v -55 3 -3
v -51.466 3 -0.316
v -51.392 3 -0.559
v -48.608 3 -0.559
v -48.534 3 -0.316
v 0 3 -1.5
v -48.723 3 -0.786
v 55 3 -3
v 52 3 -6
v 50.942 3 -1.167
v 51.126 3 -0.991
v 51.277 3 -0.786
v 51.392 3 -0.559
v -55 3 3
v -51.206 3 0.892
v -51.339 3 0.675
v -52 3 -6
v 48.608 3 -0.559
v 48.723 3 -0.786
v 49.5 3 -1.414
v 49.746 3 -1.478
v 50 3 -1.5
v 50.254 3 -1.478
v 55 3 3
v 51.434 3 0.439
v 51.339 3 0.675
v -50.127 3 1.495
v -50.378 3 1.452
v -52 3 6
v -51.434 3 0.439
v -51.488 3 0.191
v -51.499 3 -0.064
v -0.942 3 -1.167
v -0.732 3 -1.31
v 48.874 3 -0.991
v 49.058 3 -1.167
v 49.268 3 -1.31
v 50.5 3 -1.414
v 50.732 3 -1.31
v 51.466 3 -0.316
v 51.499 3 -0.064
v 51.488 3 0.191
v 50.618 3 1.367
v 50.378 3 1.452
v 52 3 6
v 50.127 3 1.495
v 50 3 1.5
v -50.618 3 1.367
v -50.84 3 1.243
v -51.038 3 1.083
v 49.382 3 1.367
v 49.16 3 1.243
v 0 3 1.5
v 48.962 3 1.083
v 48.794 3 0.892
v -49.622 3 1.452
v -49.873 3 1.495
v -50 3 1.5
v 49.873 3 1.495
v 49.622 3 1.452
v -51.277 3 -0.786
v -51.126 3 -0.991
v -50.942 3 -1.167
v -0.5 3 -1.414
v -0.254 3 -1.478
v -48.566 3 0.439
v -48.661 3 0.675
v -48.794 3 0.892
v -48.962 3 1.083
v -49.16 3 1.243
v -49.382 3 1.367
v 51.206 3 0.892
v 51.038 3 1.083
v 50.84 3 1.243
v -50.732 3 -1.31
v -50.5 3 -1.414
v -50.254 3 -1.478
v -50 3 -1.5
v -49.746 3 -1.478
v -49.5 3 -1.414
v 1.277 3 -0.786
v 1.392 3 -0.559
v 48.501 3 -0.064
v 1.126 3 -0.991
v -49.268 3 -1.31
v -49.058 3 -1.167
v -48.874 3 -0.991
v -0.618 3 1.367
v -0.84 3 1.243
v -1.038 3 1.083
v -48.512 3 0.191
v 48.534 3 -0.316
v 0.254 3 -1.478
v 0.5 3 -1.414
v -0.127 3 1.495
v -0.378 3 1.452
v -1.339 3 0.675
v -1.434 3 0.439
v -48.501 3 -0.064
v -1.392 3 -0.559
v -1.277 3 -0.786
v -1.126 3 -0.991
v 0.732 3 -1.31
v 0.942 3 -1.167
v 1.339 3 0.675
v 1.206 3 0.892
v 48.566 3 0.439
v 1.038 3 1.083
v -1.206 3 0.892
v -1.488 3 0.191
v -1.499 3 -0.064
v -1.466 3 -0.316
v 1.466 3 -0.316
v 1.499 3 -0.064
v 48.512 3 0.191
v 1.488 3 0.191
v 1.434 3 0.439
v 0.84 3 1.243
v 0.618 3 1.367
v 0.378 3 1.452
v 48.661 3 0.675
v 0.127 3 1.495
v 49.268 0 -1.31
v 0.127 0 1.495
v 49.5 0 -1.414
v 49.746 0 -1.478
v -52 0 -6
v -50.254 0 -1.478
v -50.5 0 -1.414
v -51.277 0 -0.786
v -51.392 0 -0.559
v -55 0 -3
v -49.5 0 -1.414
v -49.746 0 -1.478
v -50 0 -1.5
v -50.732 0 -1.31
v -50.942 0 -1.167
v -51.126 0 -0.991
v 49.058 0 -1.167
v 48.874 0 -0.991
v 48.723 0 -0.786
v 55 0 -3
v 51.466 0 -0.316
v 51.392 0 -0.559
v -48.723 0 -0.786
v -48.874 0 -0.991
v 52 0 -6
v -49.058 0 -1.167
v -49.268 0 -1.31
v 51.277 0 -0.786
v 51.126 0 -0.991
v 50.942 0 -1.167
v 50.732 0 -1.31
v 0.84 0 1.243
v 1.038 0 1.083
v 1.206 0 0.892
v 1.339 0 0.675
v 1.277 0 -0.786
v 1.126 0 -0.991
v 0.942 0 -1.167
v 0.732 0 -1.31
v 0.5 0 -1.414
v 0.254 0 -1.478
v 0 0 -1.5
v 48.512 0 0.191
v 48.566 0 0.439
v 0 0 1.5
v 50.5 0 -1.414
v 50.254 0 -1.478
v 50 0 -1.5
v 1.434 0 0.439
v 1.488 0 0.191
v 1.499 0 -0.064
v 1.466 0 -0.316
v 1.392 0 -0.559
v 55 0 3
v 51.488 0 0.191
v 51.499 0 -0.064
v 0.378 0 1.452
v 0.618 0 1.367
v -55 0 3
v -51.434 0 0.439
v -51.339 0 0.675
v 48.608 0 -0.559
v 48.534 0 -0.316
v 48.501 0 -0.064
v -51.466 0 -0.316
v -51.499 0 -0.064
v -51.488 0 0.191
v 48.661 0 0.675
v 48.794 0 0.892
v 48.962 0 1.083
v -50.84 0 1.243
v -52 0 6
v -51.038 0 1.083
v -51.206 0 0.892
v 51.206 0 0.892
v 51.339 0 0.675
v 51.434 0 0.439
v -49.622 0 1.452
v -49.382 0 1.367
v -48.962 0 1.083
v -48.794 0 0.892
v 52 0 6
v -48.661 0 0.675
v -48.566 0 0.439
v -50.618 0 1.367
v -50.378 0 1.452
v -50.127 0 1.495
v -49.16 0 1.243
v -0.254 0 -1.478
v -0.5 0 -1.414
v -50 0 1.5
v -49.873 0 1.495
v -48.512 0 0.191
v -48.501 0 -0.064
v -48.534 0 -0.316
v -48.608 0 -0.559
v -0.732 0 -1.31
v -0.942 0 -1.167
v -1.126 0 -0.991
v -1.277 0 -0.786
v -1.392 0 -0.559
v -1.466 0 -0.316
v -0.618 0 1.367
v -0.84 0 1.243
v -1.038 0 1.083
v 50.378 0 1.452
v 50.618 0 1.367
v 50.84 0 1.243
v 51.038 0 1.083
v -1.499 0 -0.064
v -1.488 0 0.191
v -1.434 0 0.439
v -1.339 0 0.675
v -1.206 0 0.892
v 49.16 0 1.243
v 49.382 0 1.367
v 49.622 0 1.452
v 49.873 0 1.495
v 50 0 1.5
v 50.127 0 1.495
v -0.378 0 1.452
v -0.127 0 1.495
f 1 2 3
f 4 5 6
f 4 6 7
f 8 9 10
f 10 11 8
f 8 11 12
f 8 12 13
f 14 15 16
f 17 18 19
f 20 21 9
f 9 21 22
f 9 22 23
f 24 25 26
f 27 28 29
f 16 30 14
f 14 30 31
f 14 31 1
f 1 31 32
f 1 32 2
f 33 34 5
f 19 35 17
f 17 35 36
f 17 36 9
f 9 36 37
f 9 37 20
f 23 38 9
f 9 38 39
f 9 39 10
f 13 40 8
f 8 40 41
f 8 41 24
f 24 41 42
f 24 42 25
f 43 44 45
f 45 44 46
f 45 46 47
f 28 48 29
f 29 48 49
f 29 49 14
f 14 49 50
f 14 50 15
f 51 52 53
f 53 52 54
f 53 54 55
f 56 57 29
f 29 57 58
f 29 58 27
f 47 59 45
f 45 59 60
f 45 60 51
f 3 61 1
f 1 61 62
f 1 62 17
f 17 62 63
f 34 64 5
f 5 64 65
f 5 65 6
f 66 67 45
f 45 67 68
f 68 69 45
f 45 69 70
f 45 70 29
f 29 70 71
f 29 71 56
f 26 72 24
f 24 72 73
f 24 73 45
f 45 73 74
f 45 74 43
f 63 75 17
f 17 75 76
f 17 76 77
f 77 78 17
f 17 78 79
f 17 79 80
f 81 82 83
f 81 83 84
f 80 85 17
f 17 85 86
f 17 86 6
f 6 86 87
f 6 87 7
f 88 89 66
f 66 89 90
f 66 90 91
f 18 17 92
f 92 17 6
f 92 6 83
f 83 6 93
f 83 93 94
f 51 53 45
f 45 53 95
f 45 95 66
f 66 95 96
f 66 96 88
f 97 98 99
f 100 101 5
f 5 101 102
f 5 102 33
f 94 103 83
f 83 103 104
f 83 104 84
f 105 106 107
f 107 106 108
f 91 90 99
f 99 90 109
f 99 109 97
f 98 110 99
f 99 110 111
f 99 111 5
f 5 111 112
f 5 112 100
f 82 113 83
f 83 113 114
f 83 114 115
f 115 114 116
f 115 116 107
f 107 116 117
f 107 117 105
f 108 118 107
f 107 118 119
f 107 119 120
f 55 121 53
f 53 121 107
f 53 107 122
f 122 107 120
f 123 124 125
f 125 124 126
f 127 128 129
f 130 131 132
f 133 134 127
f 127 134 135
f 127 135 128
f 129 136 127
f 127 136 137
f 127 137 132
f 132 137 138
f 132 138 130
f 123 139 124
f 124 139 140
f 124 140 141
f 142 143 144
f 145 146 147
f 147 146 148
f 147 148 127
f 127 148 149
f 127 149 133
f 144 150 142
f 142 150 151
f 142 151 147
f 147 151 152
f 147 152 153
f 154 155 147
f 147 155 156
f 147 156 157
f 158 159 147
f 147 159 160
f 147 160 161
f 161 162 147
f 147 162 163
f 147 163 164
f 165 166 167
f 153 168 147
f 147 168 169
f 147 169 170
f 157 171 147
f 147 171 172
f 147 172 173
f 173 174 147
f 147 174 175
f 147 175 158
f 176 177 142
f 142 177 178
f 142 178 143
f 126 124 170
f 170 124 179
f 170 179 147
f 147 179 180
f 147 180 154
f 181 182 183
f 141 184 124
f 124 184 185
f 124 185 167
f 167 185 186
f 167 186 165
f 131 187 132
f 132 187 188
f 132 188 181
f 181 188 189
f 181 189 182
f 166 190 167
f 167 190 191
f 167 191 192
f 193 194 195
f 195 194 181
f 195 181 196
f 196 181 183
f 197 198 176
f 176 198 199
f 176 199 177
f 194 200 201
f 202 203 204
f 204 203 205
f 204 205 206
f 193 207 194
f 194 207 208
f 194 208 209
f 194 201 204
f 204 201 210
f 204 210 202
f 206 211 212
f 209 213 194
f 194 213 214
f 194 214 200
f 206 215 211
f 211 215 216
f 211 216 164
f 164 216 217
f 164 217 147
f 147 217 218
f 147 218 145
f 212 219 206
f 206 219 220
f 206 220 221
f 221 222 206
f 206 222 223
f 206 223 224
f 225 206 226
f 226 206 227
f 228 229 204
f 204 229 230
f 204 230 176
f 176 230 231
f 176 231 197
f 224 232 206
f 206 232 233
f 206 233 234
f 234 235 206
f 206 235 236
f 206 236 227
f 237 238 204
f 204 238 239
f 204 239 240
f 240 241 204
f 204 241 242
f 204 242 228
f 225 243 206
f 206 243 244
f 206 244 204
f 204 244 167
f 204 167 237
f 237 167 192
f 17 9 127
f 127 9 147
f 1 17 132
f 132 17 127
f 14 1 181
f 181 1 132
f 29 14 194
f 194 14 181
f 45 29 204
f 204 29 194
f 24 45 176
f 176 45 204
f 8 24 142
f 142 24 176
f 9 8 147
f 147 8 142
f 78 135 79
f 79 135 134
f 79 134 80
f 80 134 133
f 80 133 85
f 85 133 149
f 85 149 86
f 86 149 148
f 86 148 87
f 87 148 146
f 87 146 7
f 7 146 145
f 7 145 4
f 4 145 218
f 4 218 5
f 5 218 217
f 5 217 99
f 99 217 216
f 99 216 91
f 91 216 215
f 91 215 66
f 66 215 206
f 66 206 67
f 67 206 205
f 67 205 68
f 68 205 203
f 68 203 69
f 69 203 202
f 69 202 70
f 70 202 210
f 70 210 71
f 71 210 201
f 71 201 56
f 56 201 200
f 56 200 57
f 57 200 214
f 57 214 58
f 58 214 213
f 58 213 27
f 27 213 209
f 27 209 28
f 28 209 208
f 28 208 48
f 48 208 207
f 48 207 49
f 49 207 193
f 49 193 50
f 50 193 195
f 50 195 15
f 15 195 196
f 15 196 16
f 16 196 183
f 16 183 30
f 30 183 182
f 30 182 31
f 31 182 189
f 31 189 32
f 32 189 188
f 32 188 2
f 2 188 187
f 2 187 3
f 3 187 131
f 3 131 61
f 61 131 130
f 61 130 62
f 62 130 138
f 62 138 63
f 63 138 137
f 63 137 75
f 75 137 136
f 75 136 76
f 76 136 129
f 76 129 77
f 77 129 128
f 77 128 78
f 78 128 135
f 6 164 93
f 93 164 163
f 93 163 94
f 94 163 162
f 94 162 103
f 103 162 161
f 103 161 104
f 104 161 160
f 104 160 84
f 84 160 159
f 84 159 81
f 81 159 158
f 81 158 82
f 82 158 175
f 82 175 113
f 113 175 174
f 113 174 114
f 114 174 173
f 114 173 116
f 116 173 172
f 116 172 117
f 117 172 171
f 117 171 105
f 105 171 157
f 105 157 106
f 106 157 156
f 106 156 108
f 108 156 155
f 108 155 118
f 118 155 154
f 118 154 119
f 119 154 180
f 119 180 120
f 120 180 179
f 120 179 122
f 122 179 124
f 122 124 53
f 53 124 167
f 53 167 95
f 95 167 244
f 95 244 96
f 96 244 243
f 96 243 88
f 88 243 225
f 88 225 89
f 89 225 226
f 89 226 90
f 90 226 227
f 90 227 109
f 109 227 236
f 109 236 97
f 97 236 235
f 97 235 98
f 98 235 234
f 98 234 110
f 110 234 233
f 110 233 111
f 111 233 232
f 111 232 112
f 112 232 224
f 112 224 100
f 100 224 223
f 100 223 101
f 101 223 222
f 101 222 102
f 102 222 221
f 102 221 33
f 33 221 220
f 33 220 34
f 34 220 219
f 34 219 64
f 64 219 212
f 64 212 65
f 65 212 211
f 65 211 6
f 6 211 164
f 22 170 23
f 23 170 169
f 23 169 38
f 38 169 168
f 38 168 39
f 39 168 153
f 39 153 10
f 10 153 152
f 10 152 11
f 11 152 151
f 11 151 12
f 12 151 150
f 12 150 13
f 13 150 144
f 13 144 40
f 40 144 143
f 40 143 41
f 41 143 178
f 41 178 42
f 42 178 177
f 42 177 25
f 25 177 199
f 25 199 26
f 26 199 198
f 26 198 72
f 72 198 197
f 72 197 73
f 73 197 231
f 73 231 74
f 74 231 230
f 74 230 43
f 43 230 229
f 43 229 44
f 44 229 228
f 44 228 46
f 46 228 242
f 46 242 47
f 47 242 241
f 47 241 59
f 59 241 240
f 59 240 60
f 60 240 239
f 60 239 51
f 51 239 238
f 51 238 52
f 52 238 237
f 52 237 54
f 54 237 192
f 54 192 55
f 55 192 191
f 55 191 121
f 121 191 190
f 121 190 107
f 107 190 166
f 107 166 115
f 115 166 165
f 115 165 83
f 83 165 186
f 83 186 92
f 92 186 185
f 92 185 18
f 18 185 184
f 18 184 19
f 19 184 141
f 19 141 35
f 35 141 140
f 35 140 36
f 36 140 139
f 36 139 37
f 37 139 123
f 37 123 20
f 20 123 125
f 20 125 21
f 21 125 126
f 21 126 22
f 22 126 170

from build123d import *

# Parameters (mm, degrees)
SKETCH1_R           = 1.5
BOSS_EXTRUDE1_DEPTH = 3


with BuildPart() as part:
    # Sketch1 → Boss-Extrude1 (new body)
    with BuildSketch(Plane(origin=(0, 0, 0), x_dir=(1, 0, 0), z_dir=(0, 1, 0))):
        Polygon((-55, 3), (-52, 6), (52, 6), (55, 3), (55, -3), (52, -6), (-52, -6), (-55, -3), align=None)
        with Locations(Location((-50, 0, 0), (0, 0, 270))):
            Circle(SKETCH1_R, mode=Mode.SUBTRACT)
        with Locations(Location((0, 0, 0), (0, 0, 270))):
            Circle(SKETCH1_R, mode=Mode.SUBTRACT)
        with Locations(Location((50, 0, 0), (0, 0, 270))):
            Circle(SKETCH1_R, mode=Mode.SUBTRACT)
    extrude(amount=BOSS_EXTRUDE1_DEPTH)


solid = part.part
